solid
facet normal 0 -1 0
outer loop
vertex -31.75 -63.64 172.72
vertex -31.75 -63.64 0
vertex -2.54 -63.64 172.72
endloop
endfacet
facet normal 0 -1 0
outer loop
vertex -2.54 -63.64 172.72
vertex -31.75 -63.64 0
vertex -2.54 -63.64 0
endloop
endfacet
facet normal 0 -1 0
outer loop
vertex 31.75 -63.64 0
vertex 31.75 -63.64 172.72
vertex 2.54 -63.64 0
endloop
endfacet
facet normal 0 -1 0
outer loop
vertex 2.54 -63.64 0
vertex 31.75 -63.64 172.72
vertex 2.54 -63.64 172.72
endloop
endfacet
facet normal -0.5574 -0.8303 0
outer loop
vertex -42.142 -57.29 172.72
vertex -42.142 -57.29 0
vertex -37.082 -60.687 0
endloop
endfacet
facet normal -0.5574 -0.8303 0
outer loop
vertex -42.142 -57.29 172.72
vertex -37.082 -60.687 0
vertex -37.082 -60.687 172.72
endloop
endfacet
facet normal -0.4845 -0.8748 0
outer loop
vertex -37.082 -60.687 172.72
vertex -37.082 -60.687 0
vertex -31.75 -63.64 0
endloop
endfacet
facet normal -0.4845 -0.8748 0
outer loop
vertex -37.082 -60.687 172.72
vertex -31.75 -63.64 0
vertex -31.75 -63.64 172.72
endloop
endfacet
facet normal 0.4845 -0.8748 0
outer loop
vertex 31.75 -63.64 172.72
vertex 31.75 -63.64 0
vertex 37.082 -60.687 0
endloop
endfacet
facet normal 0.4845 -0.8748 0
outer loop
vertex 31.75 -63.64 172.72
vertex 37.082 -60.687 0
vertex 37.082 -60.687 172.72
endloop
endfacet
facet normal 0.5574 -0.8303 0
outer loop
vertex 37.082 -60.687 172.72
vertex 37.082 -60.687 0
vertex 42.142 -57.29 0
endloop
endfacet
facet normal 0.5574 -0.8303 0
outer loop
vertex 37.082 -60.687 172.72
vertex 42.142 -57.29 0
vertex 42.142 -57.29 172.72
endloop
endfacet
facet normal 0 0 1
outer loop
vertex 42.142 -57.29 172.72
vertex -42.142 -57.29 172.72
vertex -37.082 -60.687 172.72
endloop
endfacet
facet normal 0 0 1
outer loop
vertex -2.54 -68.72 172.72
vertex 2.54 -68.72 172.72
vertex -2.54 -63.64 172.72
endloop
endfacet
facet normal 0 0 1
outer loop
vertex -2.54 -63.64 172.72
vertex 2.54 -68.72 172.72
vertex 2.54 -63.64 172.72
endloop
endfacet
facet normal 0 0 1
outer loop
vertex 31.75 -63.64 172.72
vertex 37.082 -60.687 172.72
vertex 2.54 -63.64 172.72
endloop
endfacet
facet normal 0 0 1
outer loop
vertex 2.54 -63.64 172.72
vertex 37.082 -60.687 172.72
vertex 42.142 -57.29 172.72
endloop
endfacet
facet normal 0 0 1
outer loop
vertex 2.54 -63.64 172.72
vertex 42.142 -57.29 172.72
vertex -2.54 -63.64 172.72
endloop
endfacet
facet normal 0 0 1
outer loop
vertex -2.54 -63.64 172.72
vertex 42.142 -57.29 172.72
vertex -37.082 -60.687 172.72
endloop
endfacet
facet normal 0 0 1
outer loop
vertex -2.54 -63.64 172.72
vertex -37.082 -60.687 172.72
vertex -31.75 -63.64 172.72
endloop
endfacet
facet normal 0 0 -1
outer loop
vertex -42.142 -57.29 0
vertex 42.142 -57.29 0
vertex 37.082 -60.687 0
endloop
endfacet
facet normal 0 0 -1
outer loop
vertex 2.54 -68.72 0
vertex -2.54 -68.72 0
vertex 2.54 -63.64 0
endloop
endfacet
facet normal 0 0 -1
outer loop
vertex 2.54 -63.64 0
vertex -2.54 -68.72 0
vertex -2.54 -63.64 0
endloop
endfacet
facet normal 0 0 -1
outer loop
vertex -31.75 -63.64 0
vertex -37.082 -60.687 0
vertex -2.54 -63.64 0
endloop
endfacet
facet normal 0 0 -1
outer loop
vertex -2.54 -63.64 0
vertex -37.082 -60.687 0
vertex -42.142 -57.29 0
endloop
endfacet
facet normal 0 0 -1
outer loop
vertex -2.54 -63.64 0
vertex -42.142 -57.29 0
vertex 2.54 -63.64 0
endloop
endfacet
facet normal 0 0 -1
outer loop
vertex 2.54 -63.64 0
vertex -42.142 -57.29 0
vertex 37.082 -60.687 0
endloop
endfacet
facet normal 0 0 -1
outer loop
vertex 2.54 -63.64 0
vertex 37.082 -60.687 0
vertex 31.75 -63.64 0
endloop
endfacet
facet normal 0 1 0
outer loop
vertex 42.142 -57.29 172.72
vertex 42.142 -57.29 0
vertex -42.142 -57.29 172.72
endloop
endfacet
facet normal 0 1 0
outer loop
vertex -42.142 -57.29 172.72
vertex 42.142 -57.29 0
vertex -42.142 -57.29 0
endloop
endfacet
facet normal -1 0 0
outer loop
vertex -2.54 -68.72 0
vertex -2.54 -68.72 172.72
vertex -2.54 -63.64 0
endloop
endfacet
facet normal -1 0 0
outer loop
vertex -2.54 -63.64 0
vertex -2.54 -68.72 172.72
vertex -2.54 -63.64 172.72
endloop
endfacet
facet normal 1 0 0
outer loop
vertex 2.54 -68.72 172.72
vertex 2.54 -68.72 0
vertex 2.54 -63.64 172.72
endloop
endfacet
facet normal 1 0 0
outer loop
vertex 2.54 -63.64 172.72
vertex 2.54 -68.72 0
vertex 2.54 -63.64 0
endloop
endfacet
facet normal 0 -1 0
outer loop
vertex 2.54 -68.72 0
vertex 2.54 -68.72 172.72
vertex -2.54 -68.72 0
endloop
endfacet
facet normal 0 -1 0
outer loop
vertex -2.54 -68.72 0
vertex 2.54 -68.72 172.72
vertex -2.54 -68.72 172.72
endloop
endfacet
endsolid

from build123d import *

# Parameters (mm, degrees)
SKETCH3_R           = 71.12
BOSS_EXTRUDE2_DEPTH = 172.72
CUT_EXTRUDE3_DEPTH  = 173.72
CUT_EXTRUDE4_DEPTH  = 173.72
SKETCH7_W           = 132.752189526
SKETCH7_H           = 172.72
CUT_EXTRUDE5_DEPTH  = 31.75
SKETCH8_W           = 5.08
SKETCH8_H           = 172.72
BOSS_EXTRUDE3_DEPTH = 5.08


with BuildPart() as part:
    # Sketch3 → Boss-Extrude2 (new body)
    with BuildSketch(Plane.XY):
        Circle(SKETCH3_R)
    extrude(amount=BOSS_EXTRUDE2_DEPTH)

    # Sketch4 → Cut-Extrude3 (cut, through all)
    with BuildSketch(Plane.XY.offset(172.72)):
        with BuildLine():
            Line((-31.75, -63.639546667), (31.75, -63.639546667))
            ThreePointArc((31.75, -63.639546667), (0, -71.12), (-31.75, -63.639546667))
        make_face()
    extrude(amount=-CUT_EXTRUDE3_DEPTH, mode=Mode.SUBTRACT)

    # Sketch5 → Cut-Extrude4 (cut, through all)
    with BuildSketch(Plane.XY.offset(172.72)):
        with BuildLine():
            Line((-66.376094763, -25.539546667), (66.376094763, -25.539546667))
            ThreePointArc((66.376094763, -25.539546667), (0, 71.12), (-66.376094763, -25.539546667))
        make_face()
    extrude(amount=-CUT_EXTRUDE4_DEPTH, mode=Mode.SUBTRACT)

    # Sketch7 → Cut-Extrude5 (cut)
    with BuildSketch(Plane(origin=(0, -25.539546667, 0), x_dir=(1, 0, 0), z_dir=(0, 1, 0))):
        with Locations((0, -86.36)):
            Rectangle(SKETCH7_W, SKETCH7_H)
    extrude(amount=-CUT_EXTRUDE5_DEPTH, mode=Mode.SUBTRACT)

    # Sketch8 → Boss-Extrude3 (add)
    with BuildSketch(Plane.XZ.offset(63.639546667)):
        with Locations((0, 86.36)):
            Rectangle(SKETCH8_W, SKETCH8_H)
    extrude(amount=BOSS_EXTRUDE3_DEPTH)


solid = part.part
